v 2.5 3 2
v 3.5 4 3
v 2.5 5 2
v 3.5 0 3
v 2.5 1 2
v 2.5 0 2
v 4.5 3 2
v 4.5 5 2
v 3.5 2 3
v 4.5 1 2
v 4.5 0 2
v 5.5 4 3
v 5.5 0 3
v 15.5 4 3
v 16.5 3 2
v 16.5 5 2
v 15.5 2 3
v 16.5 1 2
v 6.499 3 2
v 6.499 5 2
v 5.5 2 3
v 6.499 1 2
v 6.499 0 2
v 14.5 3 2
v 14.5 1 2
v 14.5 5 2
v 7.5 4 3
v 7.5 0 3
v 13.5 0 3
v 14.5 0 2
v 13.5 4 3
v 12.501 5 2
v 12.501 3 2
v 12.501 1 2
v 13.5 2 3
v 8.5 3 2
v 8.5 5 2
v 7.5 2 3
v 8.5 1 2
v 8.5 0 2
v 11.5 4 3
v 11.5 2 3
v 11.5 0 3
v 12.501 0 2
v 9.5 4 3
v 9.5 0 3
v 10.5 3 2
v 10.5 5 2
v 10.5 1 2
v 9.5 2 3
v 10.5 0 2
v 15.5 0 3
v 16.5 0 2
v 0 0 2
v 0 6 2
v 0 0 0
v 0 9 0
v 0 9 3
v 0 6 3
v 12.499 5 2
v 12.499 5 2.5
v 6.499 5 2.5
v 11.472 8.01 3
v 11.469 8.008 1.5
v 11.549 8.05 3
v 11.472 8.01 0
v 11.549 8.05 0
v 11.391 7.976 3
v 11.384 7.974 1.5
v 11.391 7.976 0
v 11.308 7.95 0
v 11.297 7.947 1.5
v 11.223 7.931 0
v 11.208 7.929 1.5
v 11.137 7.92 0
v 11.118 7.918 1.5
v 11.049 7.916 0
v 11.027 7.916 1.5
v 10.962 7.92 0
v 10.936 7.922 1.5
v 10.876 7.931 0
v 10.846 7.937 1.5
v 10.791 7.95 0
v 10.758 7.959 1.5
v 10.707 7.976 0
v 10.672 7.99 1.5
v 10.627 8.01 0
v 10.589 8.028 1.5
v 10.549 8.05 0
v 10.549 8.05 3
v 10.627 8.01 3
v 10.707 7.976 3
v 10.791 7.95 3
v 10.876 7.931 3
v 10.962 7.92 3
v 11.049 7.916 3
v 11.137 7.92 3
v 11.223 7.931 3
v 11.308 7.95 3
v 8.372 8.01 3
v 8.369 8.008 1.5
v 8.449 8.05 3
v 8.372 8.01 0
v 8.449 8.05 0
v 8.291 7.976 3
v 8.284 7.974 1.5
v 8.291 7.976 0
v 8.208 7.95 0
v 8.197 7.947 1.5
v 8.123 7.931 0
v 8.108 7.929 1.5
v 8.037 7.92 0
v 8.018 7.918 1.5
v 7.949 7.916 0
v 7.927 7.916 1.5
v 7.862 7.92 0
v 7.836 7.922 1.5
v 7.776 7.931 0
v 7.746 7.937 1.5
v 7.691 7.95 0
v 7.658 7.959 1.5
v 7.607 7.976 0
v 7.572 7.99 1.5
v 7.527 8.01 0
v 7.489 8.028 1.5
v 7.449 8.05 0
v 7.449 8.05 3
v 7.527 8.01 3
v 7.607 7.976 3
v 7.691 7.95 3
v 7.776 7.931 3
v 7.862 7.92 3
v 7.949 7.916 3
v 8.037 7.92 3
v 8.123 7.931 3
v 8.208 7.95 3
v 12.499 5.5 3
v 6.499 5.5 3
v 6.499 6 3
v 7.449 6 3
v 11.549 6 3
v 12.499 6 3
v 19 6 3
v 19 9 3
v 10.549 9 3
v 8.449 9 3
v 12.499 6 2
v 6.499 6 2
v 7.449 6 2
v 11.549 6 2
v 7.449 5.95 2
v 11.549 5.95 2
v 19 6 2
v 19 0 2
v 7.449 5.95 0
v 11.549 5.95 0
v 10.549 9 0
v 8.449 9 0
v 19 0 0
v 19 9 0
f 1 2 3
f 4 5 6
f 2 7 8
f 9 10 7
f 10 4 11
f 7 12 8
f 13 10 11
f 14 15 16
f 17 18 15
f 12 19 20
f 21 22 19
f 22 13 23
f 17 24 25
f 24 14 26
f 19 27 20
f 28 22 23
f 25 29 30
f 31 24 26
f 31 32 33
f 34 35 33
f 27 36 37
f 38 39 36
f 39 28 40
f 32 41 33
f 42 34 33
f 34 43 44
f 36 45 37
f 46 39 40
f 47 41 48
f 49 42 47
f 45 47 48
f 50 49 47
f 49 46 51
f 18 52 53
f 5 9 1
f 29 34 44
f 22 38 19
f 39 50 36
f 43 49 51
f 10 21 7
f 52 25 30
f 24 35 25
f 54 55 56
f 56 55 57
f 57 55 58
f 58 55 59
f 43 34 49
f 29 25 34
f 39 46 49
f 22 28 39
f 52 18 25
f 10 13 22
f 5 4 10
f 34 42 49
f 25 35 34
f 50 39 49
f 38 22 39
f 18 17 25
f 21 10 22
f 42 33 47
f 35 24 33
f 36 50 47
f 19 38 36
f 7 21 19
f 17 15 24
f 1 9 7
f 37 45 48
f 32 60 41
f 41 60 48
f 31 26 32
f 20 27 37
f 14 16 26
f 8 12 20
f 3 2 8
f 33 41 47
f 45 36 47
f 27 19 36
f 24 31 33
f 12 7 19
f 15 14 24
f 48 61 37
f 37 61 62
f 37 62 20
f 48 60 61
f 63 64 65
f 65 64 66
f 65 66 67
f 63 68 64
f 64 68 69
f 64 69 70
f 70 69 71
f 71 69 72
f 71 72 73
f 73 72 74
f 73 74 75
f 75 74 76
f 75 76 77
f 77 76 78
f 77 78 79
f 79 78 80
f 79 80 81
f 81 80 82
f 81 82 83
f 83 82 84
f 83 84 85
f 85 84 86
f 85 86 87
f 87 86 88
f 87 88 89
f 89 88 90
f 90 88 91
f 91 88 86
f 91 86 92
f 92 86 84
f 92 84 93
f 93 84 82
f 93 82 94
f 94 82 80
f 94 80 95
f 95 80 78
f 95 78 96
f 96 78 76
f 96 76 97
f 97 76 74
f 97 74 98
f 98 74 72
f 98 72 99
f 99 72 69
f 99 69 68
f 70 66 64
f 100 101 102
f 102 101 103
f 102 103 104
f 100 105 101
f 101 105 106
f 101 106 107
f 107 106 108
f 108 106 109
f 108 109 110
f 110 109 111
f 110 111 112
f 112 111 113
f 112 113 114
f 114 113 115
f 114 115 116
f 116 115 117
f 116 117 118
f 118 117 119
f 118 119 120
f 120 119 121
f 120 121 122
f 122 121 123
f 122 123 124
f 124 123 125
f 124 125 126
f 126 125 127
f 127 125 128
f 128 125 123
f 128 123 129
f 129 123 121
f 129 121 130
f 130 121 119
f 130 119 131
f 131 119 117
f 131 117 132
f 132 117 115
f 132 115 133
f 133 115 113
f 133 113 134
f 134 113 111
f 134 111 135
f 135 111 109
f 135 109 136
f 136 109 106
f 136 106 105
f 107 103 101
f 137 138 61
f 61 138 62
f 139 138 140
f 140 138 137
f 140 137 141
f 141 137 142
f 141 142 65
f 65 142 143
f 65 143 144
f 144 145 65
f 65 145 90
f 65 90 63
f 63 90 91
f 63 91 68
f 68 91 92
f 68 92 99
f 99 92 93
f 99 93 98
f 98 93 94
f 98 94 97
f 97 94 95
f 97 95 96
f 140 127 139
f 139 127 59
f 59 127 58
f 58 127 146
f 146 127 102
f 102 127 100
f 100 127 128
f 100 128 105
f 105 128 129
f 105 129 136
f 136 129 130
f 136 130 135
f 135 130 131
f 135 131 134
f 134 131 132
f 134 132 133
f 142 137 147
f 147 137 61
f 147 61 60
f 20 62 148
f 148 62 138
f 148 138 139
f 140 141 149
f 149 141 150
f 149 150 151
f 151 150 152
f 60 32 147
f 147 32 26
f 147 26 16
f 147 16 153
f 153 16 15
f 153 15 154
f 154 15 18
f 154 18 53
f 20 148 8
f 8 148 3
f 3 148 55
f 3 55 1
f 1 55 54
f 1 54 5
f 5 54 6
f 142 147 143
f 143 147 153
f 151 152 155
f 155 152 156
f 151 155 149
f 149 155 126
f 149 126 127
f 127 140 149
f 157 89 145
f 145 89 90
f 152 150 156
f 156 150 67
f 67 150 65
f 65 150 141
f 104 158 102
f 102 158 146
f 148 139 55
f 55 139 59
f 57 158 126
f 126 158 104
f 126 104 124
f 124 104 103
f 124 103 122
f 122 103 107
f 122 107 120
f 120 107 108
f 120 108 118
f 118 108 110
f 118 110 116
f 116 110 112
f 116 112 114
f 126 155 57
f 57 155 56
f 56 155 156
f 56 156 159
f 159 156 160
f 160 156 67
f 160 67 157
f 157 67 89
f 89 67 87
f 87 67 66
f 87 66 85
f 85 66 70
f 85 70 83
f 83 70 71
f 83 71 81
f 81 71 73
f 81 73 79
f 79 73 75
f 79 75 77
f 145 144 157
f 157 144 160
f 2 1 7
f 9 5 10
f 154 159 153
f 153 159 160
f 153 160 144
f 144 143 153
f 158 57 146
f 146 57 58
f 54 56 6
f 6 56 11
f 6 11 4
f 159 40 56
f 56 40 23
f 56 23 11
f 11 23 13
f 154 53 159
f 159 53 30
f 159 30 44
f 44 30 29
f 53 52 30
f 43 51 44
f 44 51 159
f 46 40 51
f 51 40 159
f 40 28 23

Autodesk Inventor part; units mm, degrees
ref_plane "YZ Plane" through (0, 0, 0) normal (1, 0, 0) x (0, 1, 0)
ref_plane "XZ Plane" through (0, 0, 0) normal (0, 1, 0) x (-1, 0, 0)
ref_plane "XY Plane" through (0, 0, 0) normal (0, 0, 1) x (1, 0, 0)
sketch "Sketch1" plane through (0, 0, 0) normal (0, 0, 1) x (1, 0, 0)
  line L0 (0, 0) -> (19, 0)
  line L1 (19, 0) -> (19, 9)
  line L2 (19, 9) -> (0, 9)
  line L3 (0, 9) -> (0, 0)
  point P0 (9.5, 9)
  dimension "d0" = 19
  dimension "d1" = 9
extrude "Extrusion1" add sketch "Sketch1" along normal blind 3
sketch "Sketch10" plane through (0, 0, 0) normal (-1, 0, 0) x (0, 0, 1)
  line L0 (0, 0) -> (3, 0) projected
  line L1 (3, 9) -> (3, 0) projected
  line L2 (3, 0) -> (2, 0)
  line L3 (2, 0) -> (2, 6)
  line L4 (2, 6) -> (3, 6)
  line L5 (3, 6) -> (3, 0)
  line L6 (3, 0) -> (2, 1)
  line L7 (3, 0) -> (4.4142, 0) construction
  line L8 (2, 1) -> (3, 2)
  line L9 (3, 0) -> (3, 9) projected
  line L10 (3, 2) -> (2, 3)
  line L11 (2, 3) -> (3, 4)
  line L12 (2, 5) -> (3, 4)
  line L13 (2, 5) -> (3, 5)
  dimension "d23" = 1
  dimension "d24" = 6
  dimension "d25" = 135
  dimension "d26" = 90
extrude "Extrusion8" cut sketch "Sketch10" against normal up to next contours L6 L8 L1 | L10 L11 L1 | L12 L13 L1 | L3 L4 L1 L13
sketch "Sketch12" plane through (0, 0, 3) normal (0, 0, 1) x (1, 0, 0)
  line L0 (19, 9) -> (0, 9) projected
  line L1 (11.5494, 5.95) -> (7.4494, 5.95)
  line L2 (7.4494, 5.95) -> (7.4494, 8.05)
  line L3 (7.4494, 8.05) -> (11.5494, 8.05)
  line L4 (11.5494, 8.05) -> (11.5494, 5.95)
  line L5 (11.5494, 5.95) -> (7.4494, 8.05) construction
  line L6 (7.4494, 5.95) -> (11.5494, 8.05) construction
  line L7 (10.5494, 7.1) -> (8.4494, 7.1)
  line L8 (8.4494, 7.1) -> (8.4494, 9)
  line L9 (8.4494, 9) -> (10.5494, 9)
  line L10 (10.5494, 9) -> (10.5494, 7.1)
  line L11 (10.5494, 7.1) -> (8.4494, 9) construction
  line L12 (8.4494, 7.1) -> (10.5494, 9) construction
  point P0 (0, 0)
  point P1 (9.4994, 7)
  point P2 (9.4994, 8.05)
  dimension "d47" = 2
  dimension "d48" = 4.1
  dimension "d49" = 2.1
  dimension "d50" = 2.1
extrude "Extrusion10" cut sketch "Sketch12" against normal up to next
sketch "Sketch14" plane through (0, 0, 2) normal (0, 0, 1) x (1, 0, 0)
  line L0 (6.4994, 5) -> (12.4994, 5)
  line L1 (12.4994, 5) -> (12.4994, 6)
  line L2 (12.4994, 6) -> (6.4994, 6)
  line L3 (6.4994, 6) -> (6.4994, 5)
  line L4 (6.4994, 5) -> (12.4994, 6) construction
  line L5 (12.4994, 5) -> (6.4994, 6) construction
  line L6 (19, 9) -> (10.5494, 9) projected
  point P0 (0, 0)
  point P1 (9.4994, 5.5)
  dimension "d57" = 6
  dimension "d58" = 1
  dimension "d59" = 3.5
extrude "Extrusion12" add sketch "Sketch14" along normal blind 1
chamfer "Chamfer1" distance 0.5 angle 45 1 edges at (9.4994, 5, 3)
sketch "Sketch16" plane through (0, 0, 0) normal (0, 0, -1) x (-1, 0, 0)
  line L0 (-11.5494, 8.05) -> (-11.5494, 6) projected
  line L1 (-10.5494, 8.05) -> (-11.5494, 8.05) projected
  arc A0 (-11.5494, 8.05) -> (-10.5494, 8.05) centre (-11.0494, 8.916) ccw
  line L2 (-8.4494, 8.05) -> (-7.4494, 8.05) projected
  arc A1 (-8.4494, 8.05) -> (-7.4494, 8.05) centre (-7.9494, 8.916) ccw
  point P0 (0, 0)
  dimension "d66" = 1
  dimension "d67" = 1
extrude "Extrusion13" add sketch "Sketch16" against normal up to surface (3 mm away)
sketch "Sketch18" plane through (0, 0, 0) normal (0, -1, 0) x (1, 0, 0)
  line L0 (9.5, 3) -> (8.5, 2)
  line L1 (9.5, 3) -> (10.9142, 3) construction
  line L2 (8.5, 2) -> (7.5, 3)
  line L3 (7.5, 3) -> (6.4994, 2)
  line L4 (6.4994, 2) -> (5.5, 3)
  line L5 (5.5, 3) -> (4.5, 2)
  line L6 (5.5, 3) -> (6.9142, 3) construction
  line L7 (4.5, 2) -> (3.5, 3)
  line L8 (3.5, 3) -> (2.5, 2)
  line L9 (0, 3) -> (6.4994, 3) projected
  line L10 (0, 3) -> (3.5, 3)
  line L11 (19, 3) -> (19, 2)
  line L12 (19, 2) -> (16.5, 2)
  line L13 (0, 2) -> (0, 3)
  line L14 (8.5, 2) -> (6.4994, 2)
  line L15 (6.4994, 2) -> (4.5, 2)
  line L16 (4.5, 2) -> (2.5, 2)
  line L17 (3.5, 3) -> (5.5, 3)
  line L18 (5.5, 3) -> (7.5, 3)
  line L19 (7.5, 3) -> (9.5, 3)
  line L20 (2.5, 2) -> (0, 2)
  line L21 (9.5, 2.2481) -> (9.5, 2.7918)
  line L22 (9.5, 3) -> (10.5, 2)
  line L23 (10.5, 2) -> (11.5, 3)
  line L24 (11.5, 3) -> (12.5006, 2)
  line L25 (12.5006, 2) -> (13.5, 3)
  line L26 (13.5, 3) -> (14.5, 2)
  line L27 (14.5, 2) -> (15.5, 3)
  line L28 (15.5, 3) -> (16.5, 2)
  line L29 (14.5, 2) -> (12.5006, 2)
  line L30 (16.5, 2) -> (14.5, 2)
  line L31 (12.5006, 2) -> (10.5, 2)
  line L32 (10.5, 2) -> (8.5, 2)
  line L33 (11.5, 3) -> (13.5, 3)
  line L34 (13.5, 3) -> (15.5, 3)
  line L35 (15.5, 3) -> (19, 3)
  line L36 (9.5, 3) -> (11.5, 3)
  point P0 (0, 0)
  dimension "d71" = 135
  dimension "d72" = 90
  dimension "d73" = 135
extrude "Extrusion14" cut sketch "Sketch18" against normal blind 5 contours L0 L2 L19 | L36 L23 L22 | L3 L4 L9 L18 | L33 L25 L24 | L34 L27 L26 | L5 L7 L9 | L35 L11 L12 L28 | L8 L20 L13 L9
properties part number "Clamp-part2(moving)-Base9x19mm."
